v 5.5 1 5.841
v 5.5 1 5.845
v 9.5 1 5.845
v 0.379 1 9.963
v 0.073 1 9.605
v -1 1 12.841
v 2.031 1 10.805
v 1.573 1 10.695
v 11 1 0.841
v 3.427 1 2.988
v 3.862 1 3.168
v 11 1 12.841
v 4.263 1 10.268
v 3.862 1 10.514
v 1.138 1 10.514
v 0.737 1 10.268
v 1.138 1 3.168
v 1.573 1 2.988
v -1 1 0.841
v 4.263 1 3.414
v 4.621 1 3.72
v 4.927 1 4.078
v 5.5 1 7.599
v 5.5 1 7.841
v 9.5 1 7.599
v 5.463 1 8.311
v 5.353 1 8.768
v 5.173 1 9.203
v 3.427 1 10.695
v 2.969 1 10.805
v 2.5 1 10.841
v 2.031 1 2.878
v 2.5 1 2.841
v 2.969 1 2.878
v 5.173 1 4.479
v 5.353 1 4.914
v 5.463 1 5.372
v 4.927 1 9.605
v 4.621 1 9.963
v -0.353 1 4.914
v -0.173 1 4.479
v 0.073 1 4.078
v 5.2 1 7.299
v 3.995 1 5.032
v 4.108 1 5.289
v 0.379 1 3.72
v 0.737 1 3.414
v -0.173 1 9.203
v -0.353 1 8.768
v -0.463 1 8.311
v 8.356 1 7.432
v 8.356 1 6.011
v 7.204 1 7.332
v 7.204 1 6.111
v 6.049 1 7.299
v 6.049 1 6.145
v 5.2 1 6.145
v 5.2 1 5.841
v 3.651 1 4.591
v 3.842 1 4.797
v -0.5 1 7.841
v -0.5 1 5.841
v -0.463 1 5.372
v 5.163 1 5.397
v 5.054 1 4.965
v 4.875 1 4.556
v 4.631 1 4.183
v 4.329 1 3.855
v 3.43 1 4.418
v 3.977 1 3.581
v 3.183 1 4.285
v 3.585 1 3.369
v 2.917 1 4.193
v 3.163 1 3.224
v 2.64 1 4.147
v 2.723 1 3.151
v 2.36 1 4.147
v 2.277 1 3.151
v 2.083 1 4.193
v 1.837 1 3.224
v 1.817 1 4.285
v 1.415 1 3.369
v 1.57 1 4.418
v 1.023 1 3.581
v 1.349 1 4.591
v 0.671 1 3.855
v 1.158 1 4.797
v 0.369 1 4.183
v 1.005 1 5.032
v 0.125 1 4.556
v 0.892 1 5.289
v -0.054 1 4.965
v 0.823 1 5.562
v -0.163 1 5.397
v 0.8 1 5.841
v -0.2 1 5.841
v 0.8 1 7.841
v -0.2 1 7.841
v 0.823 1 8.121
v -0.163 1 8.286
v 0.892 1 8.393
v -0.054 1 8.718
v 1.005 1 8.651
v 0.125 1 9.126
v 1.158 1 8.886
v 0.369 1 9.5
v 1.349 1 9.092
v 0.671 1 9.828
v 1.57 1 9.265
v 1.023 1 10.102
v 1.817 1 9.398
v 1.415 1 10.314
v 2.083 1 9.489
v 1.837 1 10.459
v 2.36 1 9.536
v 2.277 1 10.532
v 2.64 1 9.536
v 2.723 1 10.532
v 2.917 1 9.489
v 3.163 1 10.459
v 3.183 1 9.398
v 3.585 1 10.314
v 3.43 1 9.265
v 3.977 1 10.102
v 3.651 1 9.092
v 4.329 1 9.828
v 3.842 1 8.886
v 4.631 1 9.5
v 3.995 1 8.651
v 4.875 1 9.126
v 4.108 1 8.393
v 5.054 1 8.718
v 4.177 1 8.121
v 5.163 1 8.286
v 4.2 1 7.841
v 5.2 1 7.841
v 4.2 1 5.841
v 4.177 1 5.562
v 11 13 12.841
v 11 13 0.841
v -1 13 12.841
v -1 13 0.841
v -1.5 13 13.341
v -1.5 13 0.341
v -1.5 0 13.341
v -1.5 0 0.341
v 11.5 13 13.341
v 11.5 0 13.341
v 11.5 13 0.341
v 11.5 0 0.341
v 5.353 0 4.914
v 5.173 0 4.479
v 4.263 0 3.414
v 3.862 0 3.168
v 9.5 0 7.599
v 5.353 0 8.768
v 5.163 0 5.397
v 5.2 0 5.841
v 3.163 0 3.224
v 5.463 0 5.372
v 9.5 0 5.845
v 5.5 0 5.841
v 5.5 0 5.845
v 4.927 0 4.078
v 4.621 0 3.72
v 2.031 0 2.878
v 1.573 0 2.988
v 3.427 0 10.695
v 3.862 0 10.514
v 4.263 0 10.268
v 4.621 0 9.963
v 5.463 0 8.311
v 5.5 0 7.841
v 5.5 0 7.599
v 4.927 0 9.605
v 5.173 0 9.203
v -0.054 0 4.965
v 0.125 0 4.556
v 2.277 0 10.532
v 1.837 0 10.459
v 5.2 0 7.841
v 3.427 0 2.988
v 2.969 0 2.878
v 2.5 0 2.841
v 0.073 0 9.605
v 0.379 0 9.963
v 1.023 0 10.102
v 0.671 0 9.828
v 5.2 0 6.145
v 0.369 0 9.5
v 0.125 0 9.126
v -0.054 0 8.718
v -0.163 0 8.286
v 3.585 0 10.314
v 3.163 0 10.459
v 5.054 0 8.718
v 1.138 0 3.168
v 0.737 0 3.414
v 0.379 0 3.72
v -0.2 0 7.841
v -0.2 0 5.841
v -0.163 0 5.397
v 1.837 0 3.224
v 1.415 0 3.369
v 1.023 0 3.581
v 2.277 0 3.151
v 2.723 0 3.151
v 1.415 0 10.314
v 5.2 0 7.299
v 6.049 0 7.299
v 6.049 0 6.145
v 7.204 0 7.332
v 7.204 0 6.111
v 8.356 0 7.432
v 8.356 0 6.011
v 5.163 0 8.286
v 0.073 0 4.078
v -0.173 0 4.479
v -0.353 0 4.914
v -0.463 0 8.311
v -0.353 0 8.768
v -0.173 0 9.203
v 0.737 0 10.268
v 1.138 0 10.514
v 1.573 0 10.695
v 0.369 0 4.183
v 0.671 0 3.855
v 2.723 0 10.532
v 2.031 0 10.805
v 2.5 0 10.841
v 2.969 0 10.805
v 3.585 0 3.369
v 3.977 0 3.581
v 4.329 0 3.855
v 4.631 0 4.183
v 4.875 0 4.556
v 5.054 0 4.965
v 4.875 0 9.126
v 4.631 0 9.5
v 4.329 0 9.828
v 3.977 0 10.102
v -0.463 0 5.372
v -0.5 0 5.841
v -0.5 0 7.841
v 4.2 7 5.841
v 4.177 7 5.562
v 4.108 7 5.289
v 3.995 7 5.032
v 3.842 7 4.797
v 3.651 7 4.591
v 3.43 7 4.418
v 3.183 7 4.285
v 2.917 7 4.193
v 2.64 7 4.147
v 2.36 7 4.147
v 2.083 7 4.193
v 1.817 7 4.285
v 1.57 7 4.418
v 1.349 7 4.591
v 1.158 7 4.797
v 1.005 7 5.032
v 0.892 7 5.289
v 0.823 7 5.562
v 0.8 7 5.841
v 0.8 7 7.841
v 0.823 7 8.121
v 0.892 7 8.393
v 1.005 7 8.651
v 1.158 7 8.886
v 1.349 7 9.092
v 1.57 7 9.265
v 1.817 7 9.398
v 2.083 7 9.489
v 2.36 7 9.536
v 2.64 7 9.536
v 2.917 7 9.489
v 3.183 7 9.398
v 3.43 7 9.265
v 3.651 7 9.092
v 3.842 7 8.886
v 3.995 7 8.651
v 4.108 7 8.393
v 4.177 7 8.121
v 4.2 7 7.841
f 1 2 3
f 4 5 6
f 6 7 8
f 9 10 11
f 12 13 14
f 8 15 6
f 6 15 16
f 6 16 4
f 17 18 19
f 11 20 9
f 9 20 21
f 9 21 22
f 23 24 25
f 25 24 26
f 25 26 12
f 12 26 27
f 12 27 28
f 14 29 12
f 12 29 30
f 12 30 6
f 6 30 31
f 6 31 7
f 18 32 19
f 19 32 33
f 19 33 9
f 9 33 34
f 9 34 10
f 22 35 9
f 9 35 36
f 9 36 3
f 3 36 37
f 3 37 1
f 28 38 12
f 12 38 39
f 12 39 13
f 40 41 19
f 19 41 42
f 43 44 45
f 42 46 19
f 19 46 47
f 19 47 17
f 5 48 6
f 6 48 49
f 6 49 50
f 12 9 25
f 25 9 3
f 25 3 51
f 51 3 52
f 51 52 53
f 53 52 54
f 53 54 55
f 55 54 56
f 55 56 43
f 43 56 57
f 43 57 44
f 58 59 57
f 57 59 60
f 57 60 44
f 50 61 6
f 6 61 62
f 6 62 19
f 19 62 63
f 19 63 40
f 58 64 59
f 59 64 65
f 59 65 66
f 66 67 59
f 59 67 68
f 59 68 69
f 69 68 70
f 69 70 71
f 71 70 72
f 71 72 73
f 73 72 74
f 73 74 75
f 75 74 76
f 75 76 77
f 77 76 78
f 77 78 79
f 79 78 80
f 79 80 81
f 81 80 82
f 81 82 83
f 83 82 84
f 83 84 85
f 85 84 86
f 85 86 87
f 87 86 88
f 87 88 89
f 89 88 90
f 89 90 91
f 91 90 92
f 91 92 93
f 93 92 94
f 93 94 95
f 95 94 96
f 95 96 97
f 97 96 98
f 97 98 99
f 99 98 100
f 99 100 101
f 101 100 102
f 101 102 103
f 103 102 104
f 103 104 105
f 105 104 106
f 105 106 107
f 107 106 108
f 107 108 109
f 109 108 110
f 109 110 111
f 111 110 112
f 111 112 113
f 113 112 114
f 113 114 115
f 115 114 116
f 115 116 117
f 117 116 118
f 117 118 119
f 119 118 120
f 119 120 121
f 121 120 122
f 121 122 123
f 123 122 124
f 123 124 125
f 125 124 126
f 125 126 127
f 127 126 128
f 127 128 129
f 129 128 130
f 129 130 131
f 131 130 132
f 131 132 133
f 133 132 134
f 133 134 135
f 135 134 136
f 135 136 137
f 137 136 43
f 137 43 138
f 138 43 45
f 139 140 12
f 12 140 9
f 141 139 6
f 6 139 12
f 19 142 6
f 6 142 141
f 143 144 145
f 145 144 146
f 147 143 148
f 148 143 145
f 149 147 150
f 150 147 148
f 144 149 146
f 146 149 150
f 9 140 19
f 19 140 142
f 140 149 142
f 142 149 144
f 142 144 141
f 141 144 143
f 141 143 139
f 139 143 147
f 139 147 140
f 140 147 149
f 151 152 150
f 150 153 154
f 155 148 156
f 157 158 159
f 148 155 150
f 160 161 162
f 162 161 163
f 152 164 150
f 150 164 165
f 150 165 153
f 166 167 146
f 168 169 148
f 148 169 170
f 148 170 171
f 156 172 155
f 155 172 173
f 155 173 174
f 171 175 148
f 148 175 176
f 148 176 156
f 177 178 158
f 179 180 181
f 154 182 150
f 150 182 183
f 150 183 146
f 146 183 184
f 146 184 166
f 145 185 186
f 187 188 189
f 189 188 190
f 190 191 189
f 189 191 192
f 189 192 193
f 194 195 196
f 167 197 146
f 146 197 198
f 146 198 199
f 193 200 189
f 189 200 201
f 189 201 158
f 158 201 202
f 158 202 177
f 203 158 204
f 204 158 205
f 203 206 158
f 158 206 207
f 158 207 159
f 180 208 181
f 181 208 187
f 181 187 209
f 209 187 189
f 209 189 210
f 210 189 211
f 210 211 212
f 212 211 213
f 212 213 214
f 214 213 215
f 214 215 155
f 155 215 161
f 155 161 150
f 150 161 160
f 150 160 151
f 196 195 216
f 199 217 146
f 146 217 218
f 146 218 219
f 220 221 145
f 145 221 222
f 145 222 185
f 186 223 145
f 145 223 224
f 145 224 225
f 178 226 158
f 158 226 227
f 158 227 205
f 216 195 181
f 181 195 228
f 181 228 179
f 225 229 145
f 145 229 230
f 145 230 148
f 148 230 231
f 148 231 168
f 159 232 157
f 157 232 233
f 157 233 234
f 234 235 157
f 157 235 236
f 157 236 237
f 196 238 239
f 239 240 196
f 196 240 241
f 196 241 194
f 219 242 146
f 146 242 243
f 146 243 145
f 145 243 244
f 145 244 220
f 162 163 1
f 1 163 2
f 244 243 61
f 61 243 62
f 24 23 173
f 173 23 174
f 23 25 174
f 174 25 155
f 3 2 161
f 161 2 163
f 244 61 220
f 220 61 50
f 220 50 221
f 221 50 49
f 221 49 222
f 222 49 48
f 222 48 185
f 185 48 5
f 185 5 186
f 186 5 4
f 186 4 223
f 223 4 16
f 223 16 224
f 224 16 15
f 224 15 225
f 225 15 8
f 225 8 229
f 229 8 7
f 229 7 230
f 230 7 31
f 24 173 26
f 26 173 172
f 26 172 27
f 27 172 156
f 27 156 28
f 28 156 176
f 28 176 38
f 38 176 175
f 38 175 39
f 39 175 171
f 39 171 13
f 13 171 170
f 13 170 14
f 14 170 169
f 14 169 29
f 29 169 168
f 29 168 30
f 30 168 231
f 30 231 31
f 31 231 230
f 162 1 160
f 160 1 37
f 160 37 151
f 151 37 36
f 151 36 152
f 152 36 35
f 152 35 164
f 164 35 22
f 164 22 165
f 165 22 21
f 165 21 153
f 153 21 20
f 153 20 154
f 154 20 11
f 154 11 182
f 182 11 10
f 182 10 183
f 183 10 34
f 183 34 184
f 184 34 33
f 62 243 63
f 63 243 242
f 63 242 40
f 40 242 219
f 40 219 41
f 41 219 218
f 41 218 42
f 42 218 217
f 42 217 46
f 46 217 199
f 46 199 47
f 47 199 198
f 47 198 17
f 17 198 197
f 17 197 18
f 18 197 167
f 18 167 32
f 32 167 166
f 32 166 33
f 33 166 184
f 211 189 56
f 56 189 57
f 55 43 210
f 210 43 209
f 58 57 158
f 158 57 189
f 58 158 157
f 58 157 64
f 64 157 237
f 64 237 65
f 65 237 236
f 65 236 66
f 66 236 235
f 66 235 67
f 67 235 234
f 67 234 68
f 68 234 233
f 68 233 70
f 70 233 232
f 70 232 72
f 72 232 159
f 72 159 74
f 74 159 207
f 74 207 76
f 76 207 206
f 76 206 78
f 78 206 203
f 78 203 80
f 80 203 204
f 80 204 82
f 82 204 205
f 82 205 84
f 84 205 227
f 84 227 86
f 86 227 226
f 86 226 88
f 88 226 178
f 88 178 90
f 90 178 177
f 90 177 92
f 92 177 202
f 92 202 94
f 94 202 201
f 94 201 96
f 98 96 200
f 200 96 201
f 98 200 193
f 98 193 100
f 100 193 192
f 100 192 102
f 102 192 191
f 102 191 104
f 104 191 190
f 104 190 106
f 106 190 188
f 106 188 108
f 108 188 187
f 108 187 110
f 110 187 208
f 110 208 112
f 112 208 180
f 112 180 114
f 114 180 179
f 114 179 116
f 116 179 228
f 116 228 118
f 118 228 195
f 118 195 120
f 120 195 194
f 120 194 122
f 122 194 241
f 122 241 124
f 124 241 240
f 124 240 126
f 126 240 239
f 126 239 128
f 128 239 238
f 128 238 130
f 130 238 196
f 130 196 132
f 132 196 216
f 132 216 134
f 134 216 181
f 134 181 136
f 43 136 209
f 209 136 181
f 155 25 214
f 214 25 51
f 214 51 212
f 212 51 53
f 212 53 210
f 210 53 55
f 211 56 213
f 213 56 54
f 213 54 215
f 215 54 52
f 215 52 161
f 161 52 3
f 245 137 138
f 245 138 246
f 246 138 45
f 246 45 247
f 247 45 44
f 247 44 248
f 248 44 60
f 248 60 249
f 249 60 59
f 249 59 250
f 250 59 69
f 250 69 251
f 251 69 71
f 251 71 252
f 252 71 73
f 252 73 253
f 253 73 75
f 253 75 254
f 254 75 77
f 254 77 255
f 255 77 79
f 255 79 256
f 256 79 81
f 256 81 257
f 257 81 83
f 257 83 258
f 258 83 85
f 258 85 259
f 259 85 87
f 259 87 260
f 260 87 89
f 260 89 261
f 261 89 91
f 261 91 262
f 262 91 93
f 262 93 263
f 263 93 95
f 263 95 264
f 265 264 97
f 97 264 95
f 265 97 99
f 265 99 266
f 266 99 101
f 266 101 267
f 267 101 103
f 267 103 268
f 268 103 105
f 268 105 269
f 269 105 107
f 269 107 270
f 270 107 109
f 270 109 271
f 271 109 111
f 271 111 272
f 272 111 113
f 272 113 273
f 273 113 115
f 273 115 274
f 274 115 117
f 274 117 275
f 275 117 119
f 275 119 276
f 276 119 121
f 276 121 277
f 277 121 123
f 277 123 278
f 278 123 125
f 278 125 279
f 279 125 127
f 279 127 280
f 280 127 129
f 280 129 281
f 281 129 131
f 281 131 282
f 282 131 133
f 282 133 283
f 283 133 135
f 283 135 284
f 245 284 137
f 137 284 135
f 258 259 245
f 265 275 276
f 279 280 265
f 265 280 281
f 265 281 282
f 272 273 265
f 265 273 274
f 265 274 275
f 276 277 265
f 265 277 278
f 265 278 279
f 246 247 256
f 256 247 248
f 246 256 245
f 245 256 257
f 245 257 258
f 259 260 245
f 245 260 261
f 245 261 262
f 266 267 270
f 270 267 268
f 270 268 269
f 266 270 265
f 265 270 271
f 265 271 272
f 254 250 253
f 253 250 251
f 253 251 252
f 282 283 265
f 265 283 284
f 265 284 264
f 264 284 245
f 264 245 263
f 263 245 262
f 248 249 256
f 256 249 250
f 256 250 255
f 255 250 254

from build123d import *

# Parameters (mm, degrees)
SKETCH1_W           = 13
SKETCH1_H           = 13
SKETCH1_W_2         = 12
SKETCH1_H_2         = 12
BOSS_EXTRUDE1_DEPTH = 13
SKETCH1_4_W         = 12
SKETCH1_4_H         = 12
SKETCH1_4_W_2       = 6
SKETCH1_4_H_2       = 8
SKETCH1_4_W_3       = 4
SKETCH1_4_H_3       = 1.754040625
BOSS_EXTRUDE2_DEPTH = 1
SKETCH1_7_W         = 6
SKETCH1_7_H         = 8
SKETCH1_7_W_2       = 4
SKETCH1_7_H_2       = 1.754040625
CUT_EXTRUDE1_DEPTH  = 1
FILLET1_R           = 3
SKETCH3_W           = 0.743374663
SKETCH3_H           = 1.154040625
SKETCH3_W_2         = 0.3
BOSS_EXTRUDE3_DEPTH = 1
FILLET2_R           = 20
BOSS_EXTRUDE4_DEPTH = 6


# Some blends are built 0.0001 mm under size
with BuildPart() as part:
    # Sketch1 → Boss-Extrude1 (new body)
    with BuildSketch(Plane(origin=(0, 0, 0), x_dir=(1, 0, 0), z_dir=(0, 1, 0))):
        with Locations((5, -6.841440964)):
            Rectangle(SKETCH1_W, SKETCH1_H)
        with Locations((5, -6.841440964)):
            Rectangle(SKETCH1_W_2, SKETCH1_H_2, mode=Mode.SUBTRACT)
    extrude(amount=BOSS_EXTRUDE1_DEPTH)

    # Sketch1<4> → Boss-Extrude2 (add)
    # profile 1 of 3: a face of its own
    with BuildSketch(Plane(origin=(0, 0, 0), x_dir=(1, 0, 0), z_dir=(0, 1, 0))):
        with Locations((5, -6.841440964)):
            Rectangle(SKETCH1_4_W, SKETCH1_4_H)
        Polygon((-0.500000048, -10.841440964), (-0.500000048, -2.841440964), (5.499999952, -2.841440964), (5.499999952, -5.84487475), (9.499999952, -5.84487475), (9.499999952, -7.598915375), (5.499999952, -7.598915375), (5.499999952, -10.841440964), align=None, mode=Mode.SUBTRACT)
    # profile 2 of 3: a face of its own
    with BuildSketch(Plane(origin=(0, 0, 0), x_dir=(1, 0, 0), z_dir=(0, 1, 0))):
        with Locations((2.499999952, -6.841440964)):
            Rectangle(SKETCH1_4_W_2, SKETCH1_4_H_2)
    # profile 3 of 3: a face of its own
    with BuildSketch(Plane(origin=(0, 0, 0), x_dir=(1, 0, 0), z_dir=(0, 1, 0))):
        with Locations((7.499999952, -6.721895063)):
            Rectangle(SKETCH1_4_W_3, SKETCH1_4_H_3)
    extrude(amount=BOSS_EXTRUDE2_DEPTH)

    # Sketch1<7> → Cut-Extrude1 (cut)
    with BuildSketch(Plane(origin=(0, 0, 0), x_dir=(1, 0, 0), z_dir=(0, 1, 0))):
        with Locations((2.499999952, -6.841440964)):
            Rectangle(SKETCH1_7_W, SKETCH1_7_H)
        with Locations((7.499999952, -6.721895063)):
            Rectangle(SKETCH1_7_W_2, SKETCH1_7_H_2)
    extrude(amount=CUT_EXTRUDE1_DEPTH, mode=Mode.SUBTRACT)

    # Fillet1
    fillet1_edges = [part.edges().sort_by_distance(p)[0] for p in [
        (5.499999952, 0.5, 2.841440964),
        (-0.500000048, 0.5, 2.841440964),
        (-0.500000048, 0.5, 10.841440964),
        (5.499999952, 0.5, 10.841440964),
    ]]
    fillet(fillet1_edges, radius=FILLET1_R - 0.0001)  # a hair under: the kernel refuses the full size

    # Sketch3 → Boss-Extrude3 (add)
    with BuildSketch(Plane.XZ):
        with Locations((9.871687284, 6.721895063)):
            Rectangle(SKETCH3_W, SKETCH3_H)
        with BuildLine():
            Line((5.199999952, 7.298915375), (5.199999952, 7.841440964))
            ThreePointArc((5.199999952, 7.841440964), (4.409188261, 9.750629273), (2.499999952, 10.541440964))
            ThreePointArc((2.499999952, 10.541440964), (0.590811643, 9.750629273), (-0.200000048, 7.841440964))
            Line((-0.200000048, 7.841440964), (-0.200000048, 5.841440964))
            ThreePointArc((-0.200000048, 5.841440964), (0.590811643, 3.932252654), (2.499999952, 3.141440964))
            ThreePointArc((2.499999952, 3.141440964), (4.409188261, 3.932252654), (5.199999952, 5.841440964))
            Line((5.199999952, 5.841440964), (5.199999952, 6.14487475))
            Line((5.199999952, 6.14487475), (9.199999952, 6.14487475))
            Line((9.199999952, 6.14487475), (9.199999952, 7.298915375))
            Line((9.199999952, 7.298915375), (5.199999952, 7.298915375))
        make_face()
        with Locations((9.349999952, 6.721895063)):
            Rectangle(SKETCH3_W_2, SKETCH3_H)
    extrude(amount=-BOSS_EXTRUDE3_DEPTH)

    # Fillet2
    # the kernel refuses this fillet: 20 mm, written as the material it adds along each edge
    with BuildSketch(Plane(origin=(9.499999952, 0, 7.298915375), x_dir=(0, 0, 1), z_dir=(0, 1, 0)), Plane(origin=(9.499999952, 1, 6.14487475), x_dir=(0, 0, -1), z_dir=(0, -1, 0))) as fillet2_piece_1:
        with BuildLine():
            CenterArc((20, -3.451086785), FILLET2_R, 170.063632928, 9.936367072)
            Line((0, -3.451086785), (0, 0))
            Line((0, 0), (0.3, 0))
        make_face()
    extrude(amount=1)

    # Sketch4 → Boss-Extrude4 (add)
    with BuildSketch(Plane(origin=(0, 1, 0), x_dir=(1, 0, 0), z_dir=(0, 1, 0))):
        with BuildLine():
            Line((4.199999952, -5.841440964), (4.199999952, -7.841440964))
            ThreePointArc((4.199999952, -7.841440964), (2.499999952, -9.541440964), (0.799999952, -7.841440964))
            Line((0.799999952, -7.841440964), (0.799999952, -5.841440964))
            ThreePointArc((0.799999952, -5.841440964), (2.499999952, -4.141440964), (4.199999952, -5.841440964))
        make_face()
    extrude(amount=BOSS_EXTRUDE4_DEPTH)


solid = part.part
